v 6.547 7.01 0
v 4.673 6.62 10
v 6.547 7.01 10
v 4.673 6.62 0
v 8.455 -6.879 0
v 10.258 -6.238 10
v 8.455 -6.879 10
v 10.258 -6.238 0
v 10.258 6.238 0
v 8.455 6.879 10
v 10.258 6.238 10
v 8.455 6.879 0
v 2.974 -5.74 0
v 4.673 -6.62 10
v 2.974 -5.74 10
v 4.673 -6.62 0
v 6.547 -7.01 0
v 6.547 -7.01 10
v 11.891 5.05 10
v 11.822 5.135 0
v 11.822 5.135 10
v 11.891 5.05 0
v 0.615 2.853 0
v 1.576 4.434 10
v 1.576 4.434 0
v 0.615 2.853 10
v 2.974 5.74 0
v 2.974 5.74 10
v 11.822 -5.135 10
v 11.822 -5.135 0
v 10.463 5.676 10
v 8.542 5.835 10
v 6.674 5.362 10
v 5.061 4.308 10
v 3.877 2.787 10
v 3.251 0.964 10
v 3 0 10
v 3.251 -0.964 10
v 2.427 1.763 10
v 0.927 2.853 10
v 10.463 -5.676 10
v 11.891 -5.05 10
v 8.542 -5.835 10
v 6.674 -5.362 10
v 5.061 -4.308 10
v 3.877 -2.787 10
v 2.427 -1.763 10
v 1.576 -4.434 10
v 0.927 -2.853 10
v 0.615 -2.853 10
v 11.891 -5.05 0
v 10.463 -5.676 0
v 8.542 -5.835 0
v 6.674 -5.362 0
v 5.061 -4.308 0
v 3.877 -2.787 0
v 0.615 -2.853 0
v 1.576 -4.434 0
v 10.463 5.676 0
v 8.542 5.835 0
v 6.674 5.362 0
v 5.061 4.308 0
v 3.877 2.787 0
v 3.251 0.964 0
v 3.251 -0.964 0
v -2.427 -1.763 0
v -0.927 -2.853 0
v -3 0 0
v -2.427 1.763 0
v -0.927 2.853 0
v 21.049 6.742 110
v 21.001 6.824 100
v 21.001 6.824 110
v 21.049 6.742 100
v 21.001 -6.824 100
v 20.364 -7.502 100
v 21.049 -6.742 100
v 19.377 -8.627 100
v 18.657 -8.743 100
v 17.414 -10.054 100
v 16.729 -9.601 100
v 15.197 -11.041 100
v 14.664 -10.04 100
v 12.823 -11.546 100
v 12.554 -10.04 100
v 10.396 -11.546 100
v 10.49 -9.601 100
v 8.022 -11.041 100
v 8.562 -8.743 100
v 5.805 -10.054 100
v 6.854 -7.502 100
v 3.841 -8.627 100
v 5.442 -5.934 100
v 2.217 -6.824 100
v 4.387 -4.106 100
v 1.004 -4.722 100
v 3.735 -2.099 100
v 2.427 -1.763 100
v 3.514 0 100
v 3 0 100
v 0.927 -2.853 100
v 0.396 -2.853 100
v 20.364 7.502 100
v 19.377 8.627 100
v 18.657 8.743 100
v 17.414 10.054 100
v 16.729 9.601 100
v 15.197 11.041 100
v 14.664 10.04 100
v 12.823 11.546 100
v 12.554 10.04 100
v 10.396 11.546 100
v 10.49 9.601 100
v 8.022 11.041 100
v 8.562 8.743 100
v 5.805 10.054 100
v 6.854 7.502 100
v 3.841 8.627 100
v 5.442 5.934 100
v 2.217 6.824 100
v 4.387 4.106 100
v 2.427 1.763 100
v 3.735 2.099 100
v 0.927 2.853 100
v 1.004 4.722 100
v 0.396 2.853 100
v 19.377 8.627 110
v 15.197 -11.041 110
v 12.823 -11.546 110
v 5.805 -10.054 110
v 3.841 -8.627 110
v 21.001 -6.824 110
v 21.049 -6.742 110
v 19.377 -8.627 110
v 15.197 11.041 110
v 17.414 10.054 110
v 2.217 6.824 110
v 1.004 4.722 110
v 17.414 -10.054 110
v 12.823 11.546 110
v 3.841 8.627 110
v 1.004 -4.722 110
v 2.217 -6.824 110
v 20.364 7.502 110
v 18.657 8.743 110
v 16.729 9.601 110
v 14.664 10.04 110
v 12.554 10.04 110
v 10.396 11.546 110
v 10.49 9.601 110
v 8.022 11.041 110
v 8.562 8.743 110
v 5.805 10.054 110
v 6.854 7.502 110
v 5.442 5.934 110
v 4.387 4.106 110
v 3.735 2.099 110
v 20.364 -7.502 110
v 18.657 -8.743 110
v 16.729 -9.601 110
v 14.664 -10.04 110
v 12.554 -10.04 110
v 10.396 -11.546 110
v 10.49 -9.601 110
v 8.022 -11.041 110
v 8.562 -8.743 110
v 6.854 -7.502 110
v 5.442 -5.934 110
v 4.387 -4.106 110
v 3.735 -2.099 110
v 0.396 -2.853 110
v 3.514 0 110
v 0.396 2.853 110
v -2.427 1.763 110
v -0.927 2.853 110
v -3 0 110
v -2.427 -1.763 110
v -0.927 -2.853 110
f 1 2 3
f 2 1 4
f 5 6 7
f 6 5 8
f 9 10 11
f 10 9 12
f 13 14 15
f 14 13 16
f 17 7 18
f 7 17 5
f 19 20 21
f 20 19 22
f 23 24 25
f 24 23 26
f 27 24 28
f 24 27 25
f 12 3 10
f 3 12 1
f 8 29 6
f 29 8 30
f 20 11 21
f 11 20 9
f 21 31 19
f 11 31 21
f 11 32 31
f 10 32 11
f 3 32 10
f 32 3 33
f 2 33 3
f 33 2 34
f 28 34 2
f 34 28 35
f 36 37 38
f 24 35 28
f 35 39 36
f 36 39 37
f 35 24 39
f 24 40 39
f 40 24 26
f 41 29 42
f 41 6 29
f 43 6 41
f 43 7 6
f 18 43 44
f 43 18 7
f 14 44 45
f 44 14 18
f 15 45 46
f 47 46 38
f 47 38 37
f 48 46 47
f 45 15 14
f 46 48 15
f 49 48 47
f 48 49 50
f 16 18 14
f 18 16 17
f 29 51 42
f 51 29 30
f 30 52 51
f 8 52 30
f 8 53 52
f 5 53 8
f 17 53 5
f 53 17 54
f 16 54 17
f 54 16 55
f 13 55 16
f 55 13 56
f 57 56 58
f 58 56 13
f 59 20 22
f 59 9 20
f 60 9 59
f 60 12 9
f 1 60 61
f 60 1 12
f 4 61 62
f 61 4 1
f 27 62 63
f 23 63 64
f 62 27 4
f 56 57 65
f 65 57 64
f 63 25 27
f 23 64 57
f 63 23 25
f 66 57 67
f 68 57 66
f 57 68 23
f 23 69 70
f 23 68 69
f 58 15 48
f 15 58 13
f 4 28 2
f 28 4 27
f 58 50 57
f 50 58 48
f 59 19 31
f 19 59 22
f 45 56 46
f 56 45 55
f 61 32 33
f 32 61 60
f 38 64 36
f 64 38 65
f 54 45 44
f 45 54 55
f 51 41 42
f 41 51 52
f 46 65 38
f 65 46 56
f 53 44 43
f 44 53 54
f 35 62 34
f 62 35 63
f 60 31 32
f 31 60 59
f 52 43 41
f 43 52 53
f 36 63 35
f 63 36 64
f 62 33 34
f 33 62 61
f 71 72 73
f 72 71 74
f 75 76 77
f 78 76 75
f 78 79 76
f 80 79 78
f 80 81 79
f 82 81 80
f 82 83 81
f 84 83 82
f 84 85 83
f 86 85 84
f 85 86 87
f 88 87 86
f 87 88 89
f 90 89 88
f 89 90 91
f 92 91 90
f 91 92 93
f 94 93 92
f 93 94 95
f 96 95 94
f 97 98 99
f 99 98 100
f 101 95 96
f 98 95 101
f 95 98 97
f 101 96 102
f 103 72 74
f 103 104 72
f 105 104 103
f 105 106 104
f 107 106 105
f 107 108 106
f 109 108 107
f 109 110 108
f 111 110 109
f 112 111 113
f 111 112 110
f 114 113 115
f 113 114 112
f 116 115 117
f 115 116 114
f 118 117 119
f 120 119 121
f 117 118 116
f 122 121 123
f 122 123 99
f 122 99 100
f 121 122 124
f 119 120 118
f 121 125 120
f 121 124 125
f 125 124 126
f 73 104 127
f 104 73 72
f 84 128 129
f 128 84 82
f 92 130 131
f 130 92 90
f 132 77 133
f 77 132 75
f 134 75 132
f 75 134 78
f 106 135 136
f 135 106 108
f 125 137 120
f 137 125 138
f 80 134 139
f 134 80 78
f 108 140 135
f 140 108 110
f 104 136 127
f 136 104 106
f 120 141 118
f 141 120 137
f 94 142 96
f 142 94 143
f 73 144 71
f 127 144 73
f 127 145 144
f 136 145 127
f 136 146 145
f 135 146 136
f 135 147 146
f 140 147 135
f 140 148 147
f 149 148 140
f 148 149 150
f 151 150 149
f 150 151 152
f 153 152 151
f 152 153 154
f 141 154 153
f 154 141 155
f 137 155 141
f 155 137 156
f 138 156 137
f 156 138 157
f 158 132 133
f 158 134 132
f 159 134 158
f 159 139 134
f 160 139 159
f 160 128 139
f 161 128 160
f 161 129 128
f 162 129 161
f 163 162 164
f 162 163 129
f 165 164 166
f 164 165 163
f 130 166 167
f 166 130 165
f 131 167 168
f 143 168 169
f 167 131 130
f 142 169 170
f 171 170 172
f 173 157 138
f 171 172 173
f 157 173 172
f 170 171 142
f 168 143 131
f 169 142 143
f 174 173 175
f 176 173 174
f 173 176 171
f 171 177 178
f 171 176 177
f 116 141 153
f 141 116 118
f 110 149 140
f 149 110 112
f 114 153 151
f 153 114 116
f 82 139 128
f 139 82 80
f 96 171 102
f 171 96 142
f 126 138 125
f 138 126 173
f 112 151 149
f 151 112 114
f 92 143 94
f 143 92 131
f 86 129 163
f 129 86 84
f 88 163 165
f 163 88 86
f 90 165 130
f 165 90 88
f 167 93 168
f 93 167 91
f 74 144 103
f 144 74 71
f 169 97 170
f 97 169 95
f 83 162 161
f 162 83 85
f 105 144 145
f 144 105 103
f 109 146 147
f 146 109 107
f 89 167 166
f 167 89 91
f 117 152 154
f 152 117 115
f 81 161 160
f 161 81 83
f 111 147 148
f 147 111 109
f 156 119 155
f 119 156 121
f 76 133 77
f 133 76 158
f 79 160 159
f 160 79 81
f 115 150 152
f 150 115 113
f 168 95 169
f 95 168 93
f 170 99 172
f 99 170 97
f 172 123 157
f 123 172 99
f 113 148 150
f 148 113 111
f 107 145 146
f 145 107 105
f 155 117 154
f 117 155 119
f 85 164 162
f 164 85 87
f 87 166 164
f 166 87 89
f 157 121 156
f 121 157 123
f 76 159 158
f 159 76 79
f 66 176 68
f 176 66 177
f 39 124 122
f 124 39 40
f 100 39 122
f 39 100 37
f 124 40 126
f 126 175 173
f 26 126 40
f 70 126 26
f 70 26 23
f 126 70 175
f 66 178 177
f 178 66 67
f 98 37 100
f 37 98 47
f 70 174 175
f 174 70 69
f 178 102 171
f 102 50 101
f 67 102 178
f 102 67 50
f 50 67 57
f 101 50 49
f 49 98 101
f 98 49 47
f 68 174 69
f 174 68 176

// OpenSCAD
//Top size
top_diameter = 11.71/2;

//Clip_rod
rod_diameter = 3;
height = 110;

//Top
solid_top_diamonter = top_diameter * .2 + top_diameter;
top_height = 10;
position_top_x = solid_top_diamonter;
position_top_y = 0;
position_top_z = 0;

//Negative top
negative_top_diameter = top_diameter;
negative_position_top_x = 2;
negative_position_top_y = 0;
negative_position_top_z = 0;

//Ferrites
ferrites_diameter = 20.19/2;
solid_ferrites_diamonter = ferrites_diameter * .15 + ferrites_diameter;
ferrites_height = 10;
position_ferrites_x = solid_ferrites_diamonter;
position_ferrites_y = 0;
position_ferrites_z = height - ferrites_height;

//Negative ferrites
negative_ferrites_diameter = ferrites_diameter;
negative_position_ferrites_x = 2;
negative_position_ferrites_y = 0;
negative_position_ferrites_z = 0;

translate([position_top_x, position_top_y, position_top_z]){
	difference() {
		cylinder(top_height, solid_top_diamonter, solid_top_diamonter);
		translate([negative_position_top_x, negative_position_top_y, negative_position_top_z]){
			color([0, 1, 0]) cylinder(top_height, negative_top_diameter, negative_top_diameter);
		}
	}
}

cylinder(height, rod_diameter, rod_diameter);

translate([position_ferrites_x, position_ferrites_y, position_ferrites_z]){
	difference() {
		cylinder(ferrites_height, solid_ferrites_diamonter, solid_ferrites_diamonter);
		translate([negative_position_ferrites_x, negative_position_ferrites_y, negative_position_ferrites_z]){
			color([0, 1, 0]) cylinder(ferrites_height, negative_ferrites_diameter, negative_ferrites_diameter);
		}
	}
}
